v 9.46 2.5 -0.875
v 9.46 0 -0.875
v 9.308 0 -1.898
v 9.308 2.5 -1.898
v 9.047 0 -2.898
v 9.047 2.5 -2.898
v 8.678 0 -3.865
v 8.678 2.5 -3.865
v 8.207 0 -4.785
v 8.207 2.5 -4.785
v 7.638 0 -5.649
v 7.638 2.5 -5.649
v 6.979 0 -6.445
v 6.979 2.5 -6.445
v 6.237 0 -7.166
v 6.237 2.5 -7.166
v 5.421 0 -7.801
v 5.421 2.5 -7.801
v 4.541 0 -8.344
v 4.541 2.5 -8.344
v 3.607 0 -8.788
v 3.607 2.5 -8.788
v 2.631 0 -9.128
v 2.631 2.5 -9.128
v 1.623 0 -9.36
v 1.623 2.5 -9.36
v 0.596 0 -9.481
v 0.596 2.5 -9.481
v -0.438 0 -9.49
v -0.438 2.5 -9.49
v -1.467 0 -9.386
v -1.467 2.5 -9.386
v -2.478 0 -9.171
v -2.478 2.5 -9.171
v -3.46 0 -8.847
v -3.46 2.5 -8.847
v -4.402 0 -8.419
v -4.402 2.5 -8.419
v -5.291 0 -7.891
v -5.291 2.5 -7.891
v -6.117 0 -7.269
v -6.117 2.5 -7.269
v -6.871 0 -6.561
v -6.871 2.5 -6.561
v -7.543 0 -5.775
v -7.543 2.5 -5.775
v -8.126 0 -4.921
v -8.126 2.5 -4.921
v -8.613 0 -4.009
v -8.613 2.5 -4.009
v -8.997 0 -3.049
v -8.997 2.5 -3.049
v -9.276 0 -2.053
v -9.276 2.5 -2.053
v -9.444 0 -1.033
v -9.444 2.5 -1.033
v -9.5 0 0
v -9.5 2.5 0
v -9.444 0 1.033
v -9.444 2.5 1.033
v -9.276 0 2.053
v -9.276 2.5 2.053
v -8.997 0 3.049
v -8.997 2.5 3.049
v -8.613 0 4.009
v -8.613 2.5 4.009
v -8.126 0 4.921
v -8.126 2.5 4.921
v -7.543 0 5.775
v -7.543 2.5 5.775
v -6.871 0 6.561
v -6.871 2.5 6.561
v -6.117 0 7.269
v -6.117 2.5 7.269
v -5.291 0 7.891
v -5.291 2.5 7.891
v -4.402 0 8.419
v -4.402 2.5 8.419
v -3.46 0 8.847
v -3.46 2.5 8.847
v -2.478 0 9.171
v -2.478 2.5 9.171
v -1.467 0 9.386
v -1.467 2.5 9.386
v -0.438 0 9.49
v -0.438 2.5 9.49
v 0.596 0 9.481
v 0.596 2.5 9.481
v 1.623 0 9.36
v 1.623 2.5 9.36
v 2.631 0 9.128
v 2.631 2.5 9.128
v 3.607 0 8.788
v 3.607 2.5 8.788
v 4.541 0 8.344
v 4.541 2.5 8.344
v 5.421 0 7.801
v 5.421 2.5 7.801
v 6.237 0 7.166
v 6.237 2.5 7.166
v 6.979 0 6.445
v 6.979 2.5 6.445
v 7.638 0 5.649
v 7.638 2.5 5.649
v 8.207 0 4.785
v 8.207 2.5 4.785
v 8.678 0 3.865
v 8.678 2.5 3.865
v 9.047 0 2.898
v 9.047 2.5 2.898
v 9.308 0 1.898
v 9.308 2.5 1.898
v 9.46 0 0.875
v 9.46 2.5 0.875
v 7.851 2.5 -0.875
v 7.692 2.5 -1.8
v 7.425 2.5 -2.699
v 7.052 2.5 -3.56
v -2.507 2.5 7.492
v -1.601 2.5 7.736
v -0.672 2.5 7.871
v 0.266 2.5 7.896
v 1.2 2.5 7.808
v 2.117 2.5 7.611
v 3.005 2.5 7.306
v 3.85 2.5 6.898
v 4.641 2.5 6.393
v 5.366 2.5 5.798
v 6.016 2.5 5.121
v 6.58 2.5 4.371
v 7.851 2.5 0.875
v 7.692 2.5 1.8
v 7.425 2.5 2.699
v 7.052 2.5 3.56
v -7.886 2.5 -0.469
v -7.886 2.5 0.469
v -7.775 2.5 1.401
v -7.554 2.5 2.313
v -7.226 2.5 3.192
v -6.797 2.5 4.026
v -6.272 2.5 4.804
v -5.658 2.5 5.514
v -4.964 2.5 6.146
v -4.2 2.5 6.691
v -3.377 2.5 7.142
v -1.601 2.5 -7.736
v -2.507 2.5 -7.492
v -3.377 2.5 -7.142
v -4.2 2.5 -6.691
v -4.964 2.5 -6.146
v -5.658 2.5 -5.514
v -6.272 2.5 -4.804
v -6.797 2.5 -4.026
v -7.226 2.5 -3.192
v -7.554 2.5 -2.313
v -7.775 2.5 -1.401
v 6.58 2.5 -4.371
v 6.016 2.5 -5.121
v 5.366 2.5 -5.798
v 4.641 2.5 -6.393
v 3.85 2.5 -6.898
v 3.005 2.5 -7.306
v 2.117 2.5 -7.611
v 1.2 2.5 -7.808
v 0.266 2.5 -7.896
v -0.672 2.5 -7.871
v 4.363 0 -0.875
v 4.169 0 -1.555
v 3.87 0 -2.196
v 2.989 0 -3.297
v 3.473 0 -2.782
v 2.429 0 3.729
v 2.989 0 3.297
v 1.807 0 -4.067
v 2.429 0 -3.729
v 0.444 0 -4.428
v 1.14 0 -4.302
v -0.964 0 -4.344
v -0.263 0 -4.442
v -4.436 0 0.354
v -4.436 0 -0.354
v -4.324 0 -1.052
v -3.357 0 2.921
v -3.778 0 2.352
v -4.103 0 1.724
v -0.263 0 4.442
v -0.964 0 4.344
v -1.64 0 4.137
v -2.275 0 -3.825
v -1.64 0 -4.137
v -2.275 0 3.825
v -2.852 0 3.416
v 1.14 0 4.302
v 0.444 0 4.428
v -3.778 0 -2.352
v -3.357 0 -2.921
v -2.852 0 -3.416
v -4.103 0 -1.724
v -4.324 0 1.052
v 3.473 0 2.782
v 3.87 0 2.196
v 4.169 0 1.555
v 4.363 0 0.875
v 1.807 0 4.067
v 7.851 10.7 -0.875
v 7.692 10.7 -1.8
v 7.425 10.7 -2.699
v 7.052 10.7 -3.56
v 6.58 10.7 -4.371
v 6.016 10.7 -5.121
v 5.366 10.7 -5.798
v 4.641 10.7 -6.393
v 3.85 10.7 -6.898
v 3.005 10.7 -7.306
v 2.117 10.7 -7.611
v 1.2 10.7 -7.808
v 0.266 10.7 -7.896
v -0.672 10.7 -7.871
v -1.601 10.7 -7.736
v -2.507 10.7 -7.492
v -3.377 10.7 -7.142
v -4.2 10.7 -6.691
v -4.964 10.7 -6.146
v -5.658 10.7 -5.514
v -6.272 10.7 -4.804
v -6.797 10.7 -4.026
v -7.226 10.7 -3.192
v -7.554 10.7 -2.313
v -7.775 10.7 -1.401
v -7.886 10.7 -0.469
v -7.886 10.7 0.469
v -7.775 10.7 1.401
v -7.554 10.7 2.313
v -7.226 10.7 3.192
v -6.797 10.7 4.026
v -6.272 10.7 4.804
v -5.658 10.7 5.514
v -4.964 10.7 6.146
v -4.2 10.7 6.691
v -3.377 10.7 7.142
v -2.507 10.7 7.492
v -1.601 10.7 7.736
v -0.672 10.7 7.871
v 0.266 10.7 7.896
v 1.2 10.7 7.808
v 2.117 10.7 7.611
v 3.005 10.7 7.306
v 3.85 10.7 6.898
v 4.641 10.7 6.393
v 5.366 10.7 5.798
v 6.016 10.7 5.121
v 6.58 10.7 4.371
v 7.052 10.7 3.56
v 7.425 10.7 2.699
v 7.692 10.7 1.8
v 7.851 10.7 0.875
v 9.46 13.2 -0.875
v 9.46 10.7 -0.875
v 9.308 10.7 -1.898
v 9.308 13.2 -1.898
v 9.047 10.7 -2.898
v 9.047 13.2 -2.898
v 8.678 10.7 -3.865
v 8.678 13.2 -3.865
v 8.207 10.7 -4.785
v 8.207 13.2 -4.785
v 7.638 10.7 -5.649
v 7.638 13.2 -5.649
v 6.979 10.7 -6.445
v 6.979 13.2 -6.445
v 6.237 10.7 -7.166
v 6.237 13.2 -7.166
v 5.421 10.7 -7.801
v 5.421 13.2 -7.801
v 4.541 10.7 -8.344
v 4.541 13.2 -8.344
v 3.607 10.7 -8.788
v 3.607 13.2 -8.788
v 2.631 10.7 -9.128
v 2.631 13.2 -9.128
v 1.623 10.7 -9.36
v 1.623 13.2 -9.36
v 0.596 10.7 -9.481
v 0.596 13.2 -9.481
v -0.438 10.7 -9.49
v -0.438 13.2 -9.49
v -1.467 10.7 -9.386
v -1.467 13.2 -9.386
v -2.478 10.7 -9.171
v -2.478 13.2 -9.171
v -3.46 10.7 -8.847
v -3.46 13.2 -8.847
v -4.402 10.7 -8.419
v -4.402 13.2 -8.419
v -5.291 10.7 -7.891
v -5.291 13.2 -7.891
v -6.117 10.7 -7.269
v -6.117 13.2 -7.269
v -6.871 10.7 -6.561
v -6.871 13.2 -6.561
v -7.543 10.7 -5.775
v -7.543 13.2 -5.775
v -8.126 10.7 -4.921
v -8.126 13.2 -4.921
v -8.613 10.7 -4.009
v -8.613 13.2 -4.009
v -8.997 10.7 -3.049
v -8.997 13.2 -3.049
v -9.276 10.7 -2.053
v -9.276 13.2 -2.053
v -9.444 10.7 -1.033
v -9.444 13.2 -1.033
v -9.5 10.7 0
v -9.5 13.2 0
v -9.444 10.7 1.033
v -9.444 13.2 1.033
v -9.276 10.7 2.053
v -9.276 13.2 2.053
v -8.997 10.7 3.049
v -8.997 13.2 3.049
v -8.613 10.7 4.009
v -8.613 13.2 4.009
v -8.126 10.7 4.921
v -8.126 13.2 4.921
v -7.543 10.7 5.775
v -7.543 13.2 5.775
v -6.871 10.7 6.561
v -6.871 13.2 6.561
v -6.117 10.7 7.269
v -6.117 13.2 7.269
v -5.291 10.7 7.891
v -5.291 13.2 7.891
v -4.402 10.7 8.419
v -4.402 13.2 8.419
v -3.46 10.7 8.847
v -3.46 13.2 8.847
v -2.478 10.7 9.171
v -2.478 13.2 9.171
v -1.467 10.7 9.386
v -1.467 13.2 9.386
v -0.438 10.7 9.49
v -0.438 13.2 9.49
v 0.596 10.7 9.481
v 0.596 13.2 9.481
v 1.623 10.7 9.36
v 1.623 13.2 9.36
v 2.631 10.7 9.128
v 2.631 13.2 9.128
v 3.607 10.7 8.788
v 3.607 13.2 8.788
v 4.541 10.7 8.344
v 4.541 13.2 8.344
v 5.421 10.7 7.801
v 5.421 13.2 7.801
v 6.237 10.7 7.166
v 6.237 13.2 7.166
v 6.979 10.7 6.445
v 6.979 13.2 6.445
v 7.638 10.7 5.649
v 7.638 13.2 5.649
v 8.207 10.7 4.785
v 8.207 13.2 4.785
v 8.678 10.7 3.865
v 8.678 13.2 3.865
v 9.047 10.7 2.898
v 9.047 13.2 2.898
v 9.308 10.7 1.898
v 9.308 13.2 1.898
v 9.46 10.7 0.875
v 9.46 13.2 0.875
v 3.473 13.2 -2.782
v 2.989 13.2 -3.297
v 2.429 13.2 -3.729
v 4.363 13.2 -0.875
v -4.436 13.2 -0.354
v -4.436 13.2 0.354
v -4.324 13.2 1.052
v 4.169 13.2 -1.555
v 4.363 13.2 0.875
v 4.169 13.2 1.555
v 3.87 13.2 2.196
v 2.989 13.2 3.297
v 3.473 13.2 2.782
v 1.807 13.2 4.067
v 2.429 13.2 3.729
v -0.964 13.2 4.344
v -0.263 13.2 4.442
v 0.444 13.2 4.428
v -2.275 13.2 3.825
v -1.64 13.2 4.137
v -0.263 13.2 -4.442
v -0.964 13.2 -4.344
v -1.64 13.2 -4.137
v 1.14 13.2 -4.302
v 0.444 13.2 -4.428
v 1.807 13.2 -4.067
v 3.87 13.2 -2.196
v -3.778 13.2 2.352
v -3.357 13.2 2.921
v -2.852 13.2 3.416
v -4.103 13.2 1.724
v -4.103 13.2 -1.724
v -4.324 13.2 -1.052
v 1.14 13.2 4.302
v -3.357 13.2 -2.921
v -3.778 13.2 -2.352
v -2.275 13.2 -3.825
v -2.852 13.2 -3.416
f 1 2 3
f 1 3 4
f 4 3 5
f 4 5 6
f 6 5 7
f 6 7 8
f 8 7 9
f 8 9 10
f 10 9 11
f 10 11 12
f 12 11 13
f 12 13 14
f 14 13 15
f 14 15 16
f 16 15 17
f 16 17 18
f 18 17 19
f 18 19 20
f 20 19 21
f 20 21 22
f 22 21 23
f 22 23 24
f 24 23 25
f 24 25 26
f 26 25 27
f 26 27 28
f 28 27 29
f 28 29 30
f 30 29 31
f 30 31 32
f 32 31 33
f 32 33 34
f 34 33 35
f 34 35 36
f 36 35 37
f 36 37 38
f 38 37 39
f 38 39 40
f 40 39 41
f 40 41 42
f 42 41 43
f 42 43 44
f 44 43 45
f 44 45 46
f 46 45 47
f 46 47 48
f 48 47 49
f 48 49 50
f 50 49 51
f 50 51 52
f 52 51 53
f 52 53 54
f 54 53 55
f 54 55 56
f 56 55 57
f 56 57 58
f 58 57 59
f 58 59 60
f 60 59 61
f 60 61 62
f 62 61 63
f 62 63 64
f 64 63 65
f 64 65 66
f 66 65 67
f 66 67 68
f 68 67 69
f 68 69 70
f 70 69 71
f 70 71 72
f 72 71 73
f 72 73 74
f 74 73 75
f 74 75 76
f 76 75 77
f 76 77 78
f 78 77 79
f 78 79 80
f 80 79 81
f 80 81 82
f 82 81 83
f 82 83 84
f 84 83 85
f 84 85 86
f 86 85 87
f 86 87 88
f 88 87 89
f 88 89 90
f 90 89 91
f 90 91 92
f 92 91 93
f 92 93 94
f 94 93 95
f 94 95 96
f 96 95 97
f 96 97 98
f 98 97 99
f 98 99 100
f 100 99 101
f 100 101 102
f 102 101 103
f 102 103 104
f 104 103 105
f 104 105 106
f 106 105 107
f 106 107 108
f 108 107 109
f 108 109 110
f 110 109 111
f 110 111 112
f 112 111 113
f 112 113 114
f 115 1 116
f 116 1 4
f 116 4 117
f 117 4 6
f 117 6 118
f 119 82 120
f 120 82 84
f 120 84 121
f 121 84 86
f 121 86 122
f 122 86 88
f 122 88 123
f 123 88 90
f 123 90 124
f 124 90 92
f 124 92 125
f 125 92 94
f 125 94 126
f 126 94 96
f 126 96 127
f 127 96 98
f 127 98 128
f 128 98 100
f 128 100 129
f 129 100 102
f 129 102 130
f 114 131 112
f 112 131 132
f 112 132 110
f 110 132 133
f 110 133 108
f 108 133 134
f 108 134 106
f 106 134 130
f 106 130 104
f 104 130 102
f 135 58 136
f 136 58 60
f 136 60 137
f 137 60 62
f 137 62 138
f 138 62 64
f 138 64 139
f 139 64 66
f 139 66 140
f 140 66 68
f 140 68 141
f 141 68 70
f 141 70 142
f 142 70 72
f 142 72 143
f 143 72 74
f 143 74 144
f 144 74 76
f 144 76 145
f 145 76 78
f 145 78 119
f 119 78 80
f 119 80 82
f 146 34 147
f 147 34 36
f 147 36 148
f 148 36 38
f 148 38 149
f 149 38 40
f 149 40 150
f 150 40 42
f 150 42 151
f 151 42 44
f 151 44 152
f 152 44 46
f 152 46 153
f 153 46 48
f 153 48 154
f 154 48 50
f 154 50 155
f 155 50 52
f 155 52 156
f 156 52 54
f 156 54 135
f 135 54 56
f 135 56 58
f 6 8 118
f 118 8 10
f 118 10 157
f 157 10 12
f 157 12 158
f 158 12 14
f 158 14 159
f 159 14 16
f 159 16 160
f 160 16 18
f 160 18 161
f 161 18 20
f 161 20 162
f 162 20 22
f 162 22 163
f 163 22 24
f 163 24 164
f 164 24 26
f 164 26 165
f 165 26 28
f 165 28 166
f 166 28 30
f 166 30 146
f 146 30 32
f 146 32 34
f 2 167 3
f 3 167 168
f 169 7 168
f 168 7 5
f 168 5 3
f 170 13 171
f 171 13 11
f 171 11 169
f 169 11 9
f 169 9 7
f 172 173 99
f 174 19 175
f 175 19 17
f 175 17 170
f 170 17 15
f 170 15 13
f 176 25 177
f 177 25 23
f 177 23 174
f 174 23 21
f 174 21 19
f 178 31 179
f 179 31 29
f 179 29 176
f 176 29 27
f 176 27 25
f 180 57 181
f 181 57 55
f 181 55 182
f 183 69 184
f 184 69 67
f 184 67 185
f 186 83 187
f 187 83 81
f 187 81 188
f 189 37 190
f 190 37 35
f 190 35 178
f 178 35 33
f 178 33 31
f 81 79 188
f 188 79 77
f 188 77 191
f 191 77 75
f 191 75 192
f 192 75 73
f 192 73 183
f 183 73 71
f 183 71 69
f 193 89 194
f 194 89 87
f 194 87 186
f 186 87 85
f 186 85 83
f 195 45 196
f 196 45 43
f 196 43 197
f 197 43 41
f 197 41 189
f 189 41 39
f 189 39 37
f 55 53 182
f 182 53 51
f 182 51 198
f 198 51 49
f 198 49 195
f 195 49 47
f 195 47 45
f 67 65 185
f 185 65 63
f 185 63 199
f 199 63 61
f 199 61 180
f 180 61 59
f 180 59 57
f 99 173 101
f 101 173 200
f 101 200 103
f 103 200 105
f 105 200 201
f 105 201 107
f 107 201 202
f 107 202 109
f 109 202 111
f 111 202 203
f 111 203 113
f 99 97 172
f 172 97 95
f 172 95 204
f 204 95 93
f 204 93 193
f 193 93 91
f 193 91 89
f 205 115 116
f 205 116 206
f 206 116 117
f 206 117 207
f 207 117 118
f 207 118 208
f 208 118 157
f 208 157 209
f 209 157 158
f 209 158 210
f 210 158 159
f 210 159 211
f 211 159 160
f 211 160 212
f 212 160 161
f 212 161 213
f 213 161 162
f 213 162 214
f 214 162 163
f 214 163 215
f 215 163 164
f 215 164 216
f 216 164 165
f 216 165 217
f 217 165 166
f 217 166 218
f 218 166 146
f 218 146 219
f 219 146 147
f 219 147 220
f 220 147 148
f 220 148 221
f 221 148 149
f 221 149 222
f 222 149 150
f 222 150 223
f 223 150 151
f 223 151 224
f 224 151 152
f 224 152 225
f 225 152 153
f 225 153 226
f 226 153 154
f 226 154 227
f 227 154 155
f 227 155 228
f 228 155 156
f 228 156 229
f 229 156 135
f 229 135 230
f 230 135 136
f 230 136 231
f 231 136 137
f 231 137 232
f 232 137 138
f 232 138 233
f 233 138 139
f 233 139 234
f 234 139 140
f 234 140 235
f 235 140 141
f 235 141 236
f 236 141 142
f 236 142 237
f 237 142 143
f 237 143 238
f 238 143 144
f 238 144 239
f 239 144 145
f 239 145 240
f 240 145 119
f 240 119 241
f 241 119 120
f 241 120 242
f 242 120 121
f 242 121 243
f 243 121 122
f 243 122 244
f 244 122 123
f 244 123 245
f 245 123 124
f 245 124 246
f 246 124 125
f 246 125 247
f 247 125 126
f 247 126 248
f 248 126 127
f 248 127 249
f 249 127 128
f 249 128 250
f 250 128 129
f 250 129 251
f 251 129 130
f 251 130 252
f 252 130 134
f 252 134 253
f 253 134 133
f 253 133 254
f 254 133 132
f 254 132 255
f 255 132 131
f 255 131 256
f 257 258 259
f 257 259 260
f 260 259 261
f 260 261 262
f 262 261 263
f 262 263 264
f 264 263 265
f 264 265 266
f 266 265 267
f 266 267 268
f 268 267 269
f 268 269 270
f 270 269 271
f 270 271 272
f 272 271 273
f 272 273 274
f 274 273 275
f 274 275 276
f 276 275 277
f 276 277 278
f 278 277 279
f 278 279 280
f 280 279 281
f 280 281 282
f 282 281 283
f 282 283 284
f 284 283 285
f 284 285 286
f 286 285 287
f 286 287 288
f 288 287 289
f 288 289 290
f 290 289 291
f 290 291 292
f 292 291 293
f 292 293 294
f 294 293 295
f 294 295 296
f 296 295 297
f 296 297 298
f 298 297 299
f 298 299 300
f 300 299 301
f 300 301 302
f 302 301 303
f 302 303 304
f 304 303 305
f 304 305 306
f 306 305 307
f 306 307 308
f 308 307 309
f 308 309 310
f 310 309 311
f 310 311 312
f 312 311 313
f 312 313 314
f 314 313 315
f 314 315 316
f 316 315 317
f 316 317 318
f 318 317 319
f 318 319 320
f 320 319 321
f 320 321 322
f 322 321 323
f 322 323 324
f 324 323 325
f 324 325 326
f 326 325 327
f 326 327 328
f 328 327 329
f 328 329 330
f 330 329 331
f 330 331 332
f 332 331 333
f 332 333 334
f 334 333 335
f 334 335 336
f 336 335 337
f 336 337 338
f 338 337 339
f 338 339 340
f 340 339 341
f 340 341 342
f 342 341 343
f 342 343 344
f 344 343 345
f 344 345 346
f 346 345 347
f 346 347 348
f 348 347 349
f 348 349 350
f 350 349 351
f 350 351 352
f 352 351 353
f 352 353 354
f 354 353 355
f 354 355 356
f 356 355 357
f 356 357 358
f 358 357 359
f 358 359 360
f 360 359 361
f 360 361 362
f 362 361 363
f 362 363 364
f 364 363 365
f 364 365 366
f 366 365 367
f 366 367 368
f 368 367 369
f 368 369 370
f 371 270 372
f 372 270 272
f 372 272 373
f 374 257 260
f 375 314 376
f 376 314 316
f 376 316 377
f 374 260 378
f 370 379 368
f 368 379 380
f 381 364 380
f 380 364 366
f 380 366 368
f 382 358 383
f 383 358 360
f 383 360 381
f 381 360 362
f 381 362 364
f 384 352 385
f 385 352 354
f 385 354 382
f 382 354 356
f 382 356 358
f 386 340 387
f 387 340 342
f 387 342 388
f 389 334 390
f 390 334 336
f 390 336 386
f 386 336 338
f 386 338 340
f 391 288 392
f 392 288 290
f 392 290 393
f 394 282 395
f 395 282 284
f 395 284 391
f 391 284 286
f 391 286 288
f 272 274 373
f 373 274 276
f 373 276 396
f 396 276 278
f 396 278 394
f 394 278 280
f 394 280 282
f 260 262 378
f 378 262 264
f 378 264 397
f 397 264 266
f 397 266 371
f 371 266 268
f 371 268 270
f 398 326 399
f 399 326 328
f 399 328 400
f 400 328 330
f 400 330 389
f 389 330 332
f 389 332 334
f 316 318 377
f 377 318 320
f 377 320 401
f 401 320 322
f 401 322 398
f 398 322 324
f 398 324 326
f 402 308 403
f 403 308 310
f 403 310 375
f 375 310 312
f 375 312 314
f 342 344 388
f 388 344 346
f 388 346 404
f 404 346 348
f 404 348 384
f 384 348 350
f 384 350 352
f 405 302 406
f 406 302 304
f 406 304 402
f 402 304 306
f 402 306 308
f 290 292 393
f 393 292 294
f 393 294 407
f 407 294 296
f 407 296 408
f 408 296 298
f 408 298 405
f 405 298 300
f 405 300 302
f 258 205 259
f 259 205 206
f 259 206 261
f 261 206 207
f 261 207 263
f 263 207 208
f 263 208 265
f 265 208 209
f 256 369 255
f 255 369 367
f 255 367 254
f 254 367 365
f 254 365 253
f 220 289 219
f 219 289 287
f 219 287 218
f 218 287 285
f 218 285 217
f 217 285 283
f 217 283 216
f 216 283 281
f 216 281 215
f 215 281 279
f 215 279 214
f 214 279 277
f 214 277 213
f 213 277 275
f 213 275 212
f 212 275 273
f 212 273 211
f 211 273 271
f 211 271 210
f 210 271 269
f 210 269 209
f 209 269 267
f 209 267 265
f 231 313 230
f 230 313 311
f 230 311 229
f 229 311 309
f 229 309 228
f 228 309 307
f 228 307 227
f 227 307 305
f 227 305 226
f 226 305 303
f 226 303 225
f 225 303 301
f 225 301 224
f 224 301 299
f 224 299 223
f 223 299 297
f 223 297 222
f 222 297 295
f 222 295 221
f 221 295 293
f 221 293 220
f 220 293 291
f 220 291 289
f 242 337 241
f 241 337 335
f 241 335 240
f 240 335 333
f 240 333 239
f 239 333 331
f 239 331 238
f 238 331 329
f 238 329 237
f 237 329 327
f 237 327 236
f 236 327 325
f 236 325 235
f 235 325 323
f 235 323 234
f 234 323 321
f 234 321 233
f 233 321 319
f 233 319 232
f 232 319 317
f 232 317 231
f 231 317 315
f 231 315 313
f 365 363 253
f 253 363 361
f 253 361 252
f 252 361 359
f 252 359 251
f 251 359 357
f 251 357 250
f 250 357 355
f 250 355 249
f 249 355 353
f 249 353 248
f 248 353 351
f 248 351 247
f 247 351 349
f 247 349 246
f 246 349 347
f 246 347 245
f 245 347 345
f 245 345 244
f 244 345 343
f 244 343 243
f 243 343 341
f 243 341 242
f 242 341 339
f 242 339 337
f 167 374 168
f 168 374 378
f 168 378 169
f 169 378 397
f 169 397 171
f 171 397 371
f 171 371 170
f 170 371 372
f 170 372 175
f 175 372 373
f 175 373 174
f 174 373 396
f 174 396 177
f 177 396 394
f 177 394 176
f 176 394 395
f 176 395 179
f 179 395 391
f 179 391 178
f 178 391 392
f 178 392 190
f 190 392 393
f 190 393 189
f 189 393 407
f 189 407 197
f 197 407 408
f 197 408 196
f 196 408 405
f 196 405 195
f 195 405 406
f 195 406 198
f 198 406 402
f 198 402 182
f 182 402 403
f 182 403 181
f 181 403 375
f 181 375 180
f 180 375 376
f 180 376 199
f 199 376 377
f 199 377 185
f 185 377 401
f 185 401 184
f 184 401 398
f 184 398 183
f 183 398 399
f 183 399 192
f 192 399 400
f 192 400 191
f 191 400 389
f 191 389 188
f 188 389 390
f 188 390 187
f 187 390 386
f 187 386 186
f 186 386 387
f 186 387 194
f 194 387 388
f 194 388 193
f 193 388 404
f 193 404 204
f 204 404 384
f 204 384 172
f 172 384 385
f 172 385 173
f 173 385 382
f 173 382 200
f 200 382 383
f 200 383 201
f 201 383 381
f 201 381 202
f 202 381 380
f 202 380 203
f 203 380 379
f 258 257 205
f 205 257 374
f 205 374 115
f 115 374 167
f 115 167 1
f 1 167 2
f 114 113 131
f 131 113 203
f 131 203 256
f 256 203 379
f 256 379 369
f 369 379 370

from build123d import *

# Parameters (mm, degrees)
SKETCH1_R           = 9.5
BOSS_EXTRUDE1_DEPTH = 2.5
SKETCH2_R           = 7.9
BOSS_EXTRUDE2_DEPTH = 8.2
SKETCH3_R           = 9.5
BOSS_EXTRUDE3_DEPTH = 2.5
SKETCH4_R           = 4.45
SKETCH4_W           = 10.190914757
SKETCH4_H           = 1.75
CUT_EXTRUDE1_DEPTH  = 19.834542734


with BuildPart() as part:
    # Sketch1 → Boss-Extrude1 (new body)
    with BuildSketch(Plane(origin=(0, 0, 0), x_dir=(1, 0, 0), z_dir=(0, 1, 0))):
        with Locations(Location((0, 0, 0), (0, 0, 270))):
            Circle(SKETCH1_R)
    extrude(amount=BOSS_EXTRUDE1_DEPTH)

    # Sketch2 → Boss-Extrude2 (add)
    with BuildSketch(Plane(origin=(0, 2.5, 0), x_dir=(1, 0, 0), z_dir=(0, 1, 0))):
        with Locations(Location((0, 0, 0), (0, 0, 270))):
            Circle(SKETCH2_R)
    extrude(amount=BOSS_EXTRUDE2_DEPTH)

    # Sketch3 → Boss-Extrude3 (add)
    with BuildSketch(Plane(origin=(0, 10.7, 0), x_dir=(1, 0, 0), z_dir=(0, 1, 0))):
        with Locations(Location((0, 0, 0), (0, 0, 270))):
            Circle(SKETCH3_R)
    extrude(amount=BOSS_EXTRUDE3_DEPTH)

    # Sketch4 → Cut-Extrude1 (cut, through all)
    with BuildSketch(Plane(origin=(0, 13.2, 0), x_dir=(1, 0, 0), z_dir=(0, 1, 0))):
        Circle(SKETCH4_R)
        with Locations((5.901899369, 0)):
            Rectangle(SKETCH4_W, SKETCH4_H)
    extrude(amount=-CUT_EXTRUDE1_DEPTH, mode=Mode.SUBTRACT)


solid = part.part
